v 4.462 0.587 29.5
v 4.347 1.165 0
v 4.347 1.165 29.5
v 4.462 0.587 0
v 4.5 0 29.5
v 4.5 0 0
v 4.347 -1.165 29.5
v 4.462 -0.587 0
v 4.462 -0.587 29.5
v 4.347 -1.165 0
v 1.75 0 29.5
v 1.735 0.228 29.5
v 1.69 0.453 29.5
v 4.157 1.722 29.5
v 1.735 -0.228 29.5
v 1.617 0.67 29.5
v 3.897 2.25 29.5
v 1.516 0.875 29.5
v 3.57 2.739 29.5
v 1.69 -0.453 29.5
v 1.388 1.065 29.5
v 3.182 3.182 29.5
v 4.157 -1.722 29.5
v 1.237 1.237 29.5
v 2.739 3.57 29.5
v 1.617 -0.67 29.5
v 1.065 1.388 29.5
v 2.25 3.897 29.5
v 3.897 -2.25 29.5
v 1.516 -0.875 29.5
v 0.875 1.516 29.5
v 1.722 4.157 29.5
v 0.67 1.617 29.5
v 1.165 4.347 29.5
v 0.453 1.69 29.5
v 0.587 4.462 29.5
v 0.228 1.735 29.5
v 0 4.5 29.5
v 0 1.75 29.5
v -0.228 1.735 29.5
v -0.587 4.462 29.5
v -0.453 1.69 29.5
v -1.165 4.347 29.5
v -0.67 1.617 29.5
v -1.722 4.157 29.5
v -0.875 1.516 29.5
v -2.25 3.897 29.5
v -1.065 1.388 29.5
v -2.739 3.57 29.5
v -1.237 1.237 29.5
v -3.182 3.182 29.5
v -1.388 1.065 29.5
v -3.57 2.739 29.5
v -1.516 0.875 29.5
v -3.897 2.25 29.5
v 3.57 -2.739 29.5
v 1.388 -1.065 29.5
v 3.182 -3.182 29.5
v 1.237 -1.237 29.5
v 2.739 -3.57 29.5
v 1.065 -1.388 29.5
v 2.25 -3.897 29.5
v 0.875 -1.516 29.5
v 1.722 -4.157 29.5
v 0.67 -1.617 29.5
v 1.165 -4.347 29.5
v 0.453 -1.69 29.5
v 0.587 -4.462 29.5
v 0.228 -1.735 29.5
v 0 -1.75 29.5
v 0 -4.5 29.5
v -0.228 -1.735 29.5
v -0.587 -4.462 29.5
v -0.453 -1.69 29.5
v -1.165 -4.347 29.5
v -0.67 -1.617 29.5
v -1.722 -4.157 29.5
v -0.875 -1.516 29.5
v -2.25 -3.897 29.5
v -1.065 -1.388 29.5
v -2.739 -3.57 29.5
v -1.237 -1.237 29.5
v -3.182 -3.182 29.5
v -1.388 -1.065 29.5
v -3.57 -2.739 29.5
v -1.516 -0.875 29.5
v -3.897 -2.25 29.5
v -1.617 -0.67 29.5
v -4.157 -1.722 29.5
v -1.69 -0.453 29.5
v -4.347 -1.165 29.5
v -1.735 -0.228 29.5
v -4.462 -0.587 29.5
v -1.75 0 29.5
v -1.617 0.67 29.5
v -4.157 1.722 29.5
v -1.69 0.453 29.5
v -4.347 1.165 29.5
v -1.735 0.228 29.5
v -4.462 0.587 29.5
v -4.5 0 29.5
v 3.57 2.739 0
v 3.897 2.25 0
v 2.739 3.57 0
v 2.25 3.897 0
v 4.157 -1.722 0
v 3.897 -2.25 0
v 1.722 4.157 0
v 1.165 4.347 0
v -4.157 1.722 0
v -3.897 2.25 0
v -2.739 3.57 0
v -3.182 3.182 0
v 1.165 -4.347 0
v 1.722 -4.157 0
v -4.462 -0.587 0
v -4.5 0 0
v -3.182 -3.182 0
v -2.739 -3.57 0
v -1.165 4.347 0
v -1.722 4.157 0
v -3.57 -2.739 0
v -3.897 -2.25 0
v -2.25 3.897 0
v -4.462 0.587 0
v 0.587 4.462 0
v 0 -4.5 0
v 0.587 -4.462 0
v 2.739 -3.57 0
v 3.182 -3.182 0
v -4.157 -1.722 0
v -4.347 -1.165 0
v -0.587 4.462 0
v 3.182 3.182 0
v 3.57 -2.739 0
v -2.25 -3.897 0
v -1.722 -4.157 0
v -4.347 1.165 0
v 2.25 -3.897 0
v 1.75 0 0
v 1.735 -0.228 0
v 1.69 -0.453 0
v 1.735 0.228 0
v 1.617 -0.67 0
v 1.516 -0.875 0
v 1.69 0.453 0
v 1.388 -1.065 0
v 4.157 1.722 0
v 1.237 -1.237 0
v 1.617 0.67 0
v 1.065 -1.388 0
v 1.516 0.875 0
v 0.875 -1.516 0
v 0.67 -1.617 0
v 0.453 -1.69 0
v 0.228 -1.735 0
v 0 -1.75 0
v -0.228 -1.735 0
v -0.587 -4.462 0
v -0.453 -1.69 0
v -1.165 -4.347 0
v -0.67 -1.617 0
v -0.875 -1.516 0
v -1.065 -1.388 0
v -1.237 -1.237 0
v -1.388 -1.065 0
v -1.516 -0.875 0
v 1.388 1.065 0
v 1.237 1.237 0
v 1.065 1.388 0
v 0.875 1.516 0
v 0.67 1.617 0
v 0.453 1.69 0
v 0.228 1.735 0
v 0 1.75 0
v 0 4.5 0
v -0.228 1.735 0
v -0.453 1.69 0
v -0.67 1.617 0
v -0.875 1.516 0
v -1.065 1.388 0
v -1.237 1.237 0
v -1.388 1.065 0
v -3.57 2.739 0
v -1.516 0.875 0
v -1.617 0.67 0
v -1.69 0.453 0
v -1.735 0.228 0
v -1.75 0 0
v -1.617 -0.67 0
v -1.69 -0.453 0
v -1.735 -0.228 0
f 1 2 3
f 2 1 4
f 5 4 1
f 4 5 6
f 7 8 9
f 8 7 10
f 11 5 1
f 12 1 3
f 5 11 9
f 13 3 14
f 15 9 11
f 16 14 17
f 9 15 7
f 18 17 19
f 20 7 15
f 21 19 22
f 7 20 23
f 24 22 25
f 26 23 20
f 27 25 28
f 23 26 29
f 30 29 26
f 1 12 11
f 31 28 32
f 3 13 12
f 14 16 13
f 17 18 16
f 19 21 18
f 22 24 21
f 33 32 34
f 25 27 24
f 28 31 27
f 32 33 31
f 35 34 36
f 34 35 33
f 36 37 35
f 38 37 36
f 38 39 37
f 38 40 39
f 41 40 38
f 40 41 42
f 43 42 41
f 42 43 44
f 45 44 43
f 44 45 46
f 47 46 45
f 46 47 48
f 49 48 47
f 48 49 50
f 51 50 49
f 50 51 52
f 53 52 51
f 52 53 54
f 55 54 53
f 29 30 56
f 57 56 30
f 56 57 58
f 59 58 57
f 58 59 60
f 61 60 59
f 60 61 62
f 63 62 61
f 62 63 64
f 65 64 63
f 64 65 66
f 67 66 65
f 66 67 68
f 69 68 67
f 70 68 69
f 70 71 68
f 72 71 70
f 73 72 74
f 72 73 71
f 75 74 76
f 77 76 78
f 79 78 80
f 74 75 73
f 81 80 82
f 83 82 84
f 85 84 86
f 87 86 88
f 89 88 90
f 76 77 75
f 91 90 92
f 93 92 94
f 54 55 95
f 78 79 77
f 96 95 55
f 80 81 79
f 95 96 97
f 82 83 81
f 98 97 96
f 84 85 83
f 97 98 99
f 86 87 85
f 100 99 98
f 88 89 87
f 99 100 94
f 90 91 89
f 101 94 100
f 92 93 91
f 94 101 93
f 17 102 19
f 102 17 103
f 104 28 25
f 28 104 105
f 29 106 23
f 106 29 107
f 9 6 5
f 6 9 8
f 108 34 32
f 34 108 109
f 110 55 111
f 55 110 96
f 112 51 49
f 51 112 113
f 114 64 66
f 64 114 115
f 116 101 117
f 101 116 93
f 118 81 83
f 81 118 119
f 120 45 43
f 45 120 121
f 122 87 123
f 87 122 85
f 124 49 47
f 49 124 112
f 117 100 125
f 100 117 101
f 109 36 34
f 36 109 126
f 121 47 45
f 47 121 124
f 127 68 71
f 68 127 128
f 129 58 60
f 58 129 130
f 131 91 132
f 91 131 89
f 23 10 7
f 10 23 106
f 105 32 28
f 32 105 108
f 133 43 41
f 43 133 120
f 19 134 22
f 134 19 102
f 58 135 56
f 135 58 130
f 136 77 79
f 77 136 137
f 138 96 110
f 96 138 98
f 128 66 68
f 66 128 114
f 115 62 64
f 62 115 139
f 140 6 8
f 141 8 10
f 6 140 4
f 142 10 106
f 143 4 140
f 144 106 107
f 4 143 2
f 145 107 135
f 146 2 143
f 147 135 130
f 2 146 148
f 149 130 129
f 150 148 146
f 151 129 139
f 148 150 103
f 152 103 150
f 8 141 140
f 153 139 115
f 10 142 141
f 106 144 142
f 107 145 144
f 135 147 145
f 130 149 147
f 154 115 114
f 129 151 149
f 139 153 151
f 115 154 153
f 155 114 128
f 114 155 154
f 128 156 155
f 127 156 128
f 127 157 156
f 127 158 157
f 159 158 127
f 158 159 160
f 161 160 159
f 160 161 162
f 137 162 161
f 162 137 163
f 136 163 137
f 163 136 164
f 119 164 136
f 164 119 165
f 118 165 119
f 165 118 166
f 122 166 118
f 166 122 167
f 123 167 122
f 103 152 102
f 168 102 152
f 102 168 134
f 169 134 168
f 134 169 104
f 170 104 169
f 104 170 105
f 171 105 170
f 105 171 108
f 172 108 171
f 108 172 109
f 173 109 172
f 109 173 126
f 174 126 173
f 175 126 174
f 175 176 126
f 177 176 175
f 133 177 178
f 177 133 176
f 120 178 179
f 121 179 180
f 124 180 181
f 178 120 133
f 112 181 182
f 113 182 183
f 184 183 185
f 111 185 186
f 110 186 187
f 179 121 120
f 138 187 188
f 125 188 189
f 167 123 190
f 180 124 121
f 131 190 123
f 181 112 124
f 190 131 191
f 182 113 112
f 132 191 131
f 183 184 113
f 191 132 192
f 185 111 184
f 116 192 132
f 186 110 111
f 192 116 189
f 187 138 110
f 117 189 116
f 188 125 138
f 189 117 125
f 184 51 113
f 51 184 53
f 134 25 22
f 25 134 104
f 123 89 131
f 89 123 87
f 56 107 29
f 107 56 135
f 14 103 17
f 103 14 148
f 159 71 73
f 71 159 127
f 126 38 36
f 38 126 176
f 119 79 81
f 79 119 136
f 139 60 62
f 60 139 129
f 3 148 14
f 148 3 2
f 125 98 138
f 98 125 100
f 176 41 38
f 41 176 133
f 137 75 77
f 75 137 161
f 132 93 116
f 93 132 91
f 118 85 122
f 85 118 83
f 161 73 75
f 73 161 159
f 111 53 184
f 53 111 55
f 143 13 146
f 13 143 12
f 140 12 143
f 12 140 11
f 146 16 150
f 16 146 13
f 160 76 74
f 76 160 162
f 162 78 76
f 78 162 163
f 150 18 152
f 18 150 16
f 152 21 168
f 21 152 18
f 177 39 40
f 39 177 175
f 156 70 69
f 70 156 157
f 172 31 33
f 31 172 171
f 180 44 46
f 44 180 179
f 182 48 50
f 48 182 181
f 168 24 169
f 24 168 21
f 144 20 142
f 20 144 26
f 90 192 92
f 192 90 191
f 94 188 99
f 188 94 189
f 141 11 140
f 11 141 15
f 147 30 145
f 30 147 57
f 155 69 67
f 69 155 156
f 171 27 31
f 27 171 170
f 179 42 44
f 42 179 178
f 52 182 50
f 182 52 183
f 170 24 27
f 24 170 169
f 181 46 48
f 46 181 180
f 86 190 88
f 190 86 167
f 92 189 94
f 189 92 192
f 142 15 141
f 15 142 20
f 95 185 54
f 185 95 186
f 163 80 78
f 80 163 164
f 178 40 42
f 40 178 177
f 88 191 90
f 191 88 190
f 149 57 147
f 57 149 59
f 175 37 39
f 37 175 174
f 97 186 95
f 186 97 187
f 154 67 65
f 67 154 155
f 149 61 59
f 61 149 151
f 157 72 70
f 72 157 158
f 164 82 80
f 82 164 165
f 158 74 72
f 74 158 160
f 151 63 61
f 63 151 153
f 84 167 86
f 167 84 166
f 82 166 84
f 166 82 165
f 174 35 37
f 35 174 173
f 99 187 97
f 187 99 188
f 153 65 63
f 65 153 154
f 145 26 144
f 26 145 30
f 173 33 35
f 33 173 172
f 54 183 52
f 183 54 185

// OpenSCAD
// Gen-DC — frame standoff tube between stator and an endbell, on each M3 frame rod (outside rotor OD).
// Print x4. Height = frame_standoff_h (rotor + steel + hub + collar + running clearance).
include <parameters.scad>;
$fn = 48;
difference() {
    cylinder(d=standoff_od, h=frame_standoff_h);
    translate([0, 0, -0.1]) cylinder(d=m3_clear, h=frame_standoff_h + 0.2);
}
